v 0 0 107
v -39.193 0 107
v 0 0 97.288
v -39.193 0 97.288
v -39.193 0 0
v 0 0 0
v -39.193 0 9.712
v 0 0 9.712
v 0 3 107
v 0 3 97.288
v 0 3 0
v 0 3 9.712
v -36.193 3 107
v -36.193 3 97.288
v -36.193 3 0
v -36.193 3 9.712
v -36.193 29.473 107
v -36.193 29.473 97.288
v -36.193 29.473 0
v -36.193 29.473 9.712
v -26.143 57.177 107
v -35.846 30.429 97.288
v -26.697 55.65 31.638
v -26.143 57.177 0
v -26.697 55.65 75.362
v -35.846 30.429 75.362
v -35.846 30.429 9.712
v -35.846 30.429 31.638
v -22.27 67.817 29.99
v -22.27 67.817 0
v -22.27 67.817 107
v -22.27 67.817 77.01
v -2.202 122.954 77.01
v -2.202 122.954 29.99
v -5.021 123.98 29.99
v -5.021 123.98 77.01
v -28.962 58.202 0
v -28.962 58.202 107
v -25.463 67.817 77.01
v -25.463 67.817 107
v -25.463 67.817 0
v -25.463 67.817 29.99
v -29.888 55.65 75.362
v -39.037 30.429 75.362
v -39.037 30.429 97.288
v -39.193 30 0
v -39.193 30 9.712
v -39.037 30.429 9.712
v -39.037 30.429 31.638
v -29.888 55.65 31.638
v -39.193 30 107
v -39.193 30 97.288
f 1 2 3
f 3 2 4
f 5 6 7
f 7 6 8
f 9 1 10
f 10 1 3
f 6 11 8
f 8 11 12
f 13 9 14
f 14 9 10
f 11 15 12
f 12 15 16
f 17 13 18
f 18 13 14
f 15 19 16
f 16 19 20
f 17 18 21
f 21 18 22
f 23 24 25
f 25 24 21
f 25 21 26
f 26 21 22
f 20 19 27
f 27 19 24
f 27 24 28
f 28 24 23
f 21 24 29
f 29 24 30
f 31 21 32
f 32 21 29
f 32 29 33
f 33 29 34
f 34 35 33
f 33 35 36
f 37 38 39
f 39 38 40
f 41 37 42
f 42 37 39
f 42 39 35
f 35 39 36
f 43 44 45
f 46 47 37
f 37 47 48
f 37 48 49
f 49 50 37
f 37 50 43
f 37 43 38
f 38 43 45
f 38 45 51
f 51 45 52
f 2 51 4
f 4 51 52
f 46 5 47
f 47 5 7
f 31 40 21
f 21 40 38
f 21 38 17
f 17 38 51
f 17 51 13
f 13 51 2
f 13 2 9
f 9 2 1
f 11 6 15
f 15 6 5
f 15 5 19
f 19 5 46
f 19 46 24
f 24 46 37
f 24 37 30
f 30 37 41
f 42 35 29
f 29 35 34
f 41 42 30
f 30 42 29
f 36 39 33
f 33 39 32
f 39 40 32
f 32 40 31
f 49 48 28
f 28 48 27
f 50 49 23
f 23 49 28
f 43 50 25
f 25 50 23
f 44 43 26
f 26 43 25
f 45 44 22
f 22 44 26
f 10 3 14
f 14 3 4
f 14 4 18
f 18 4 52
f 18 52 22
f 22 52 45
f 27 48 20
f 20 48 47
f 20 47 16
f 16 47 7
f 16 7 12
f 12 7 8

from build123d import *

# Parameters (mm, degrees)
BOSS_EXTRUDE1_DEPTH     = 107
CUT_EXTRUDE1_DEPTH      = 107
CUT_EXTRUDE1_DEPTH_BACK = 107
SKETCH2_W               = 29.989970731
SKETCH2_H               = 56.163122667


with BuildPart() as part:
    # Sketch1 → Boss-Extrude1 (new body)
    with BuildSketch(Plane.XY):
        Polygon((0, 0), (0, 3), (-36.192525263, 3), (-36.192525263, 29.472692743), (-26.142803298, 57.177331674), (-2.201948491, 122.954289658), (-5.021026354, 123.980350088), (-28.962436386, 58.201866633), (-39.192525263, 30), (-39.192525263, 0), align=None)
    extrude(amount=BOSS_EXTRUDE1_DEPTH)

    # Sketch2 → Cut-Extrude1 (cut, two sides: drawn at the far end of the back side and taken through both)
    with BuildSketch(Plane(origin=(0, 0, 0), x_dir=(0, 0, -1), z_dir=(1, 0, 0)).offset(-CUT_EXTRUDE1_DEPTH_BACK)):
        Polygon((-97.288221631, 0), (-97.288221631, 30.429310254), (-75.36242614, 30.429310254), (-75.36242614, 55.650312004), (-31.63757386, 55.650312004), (-31.63757386, 30.429310254), (-9.711778369, 30.429310254), (-9.711778369, 0), align=None)
        with Locations((-92.005014635, 95.898788755)):
            Rectangle(SKETCH2_W, SKETCH2_H)
        with Locations((-14.994985366, 95.898788755)):
            Rectangle(SKETCH2_W, SKETCH2_H)
    extrude(amount=CUT_EXTRUDE1_DEPTH + CUT_EXTRUDE1_DEPTH_BACK, mode=Mode.SUBTRACT)


solid = part.part
